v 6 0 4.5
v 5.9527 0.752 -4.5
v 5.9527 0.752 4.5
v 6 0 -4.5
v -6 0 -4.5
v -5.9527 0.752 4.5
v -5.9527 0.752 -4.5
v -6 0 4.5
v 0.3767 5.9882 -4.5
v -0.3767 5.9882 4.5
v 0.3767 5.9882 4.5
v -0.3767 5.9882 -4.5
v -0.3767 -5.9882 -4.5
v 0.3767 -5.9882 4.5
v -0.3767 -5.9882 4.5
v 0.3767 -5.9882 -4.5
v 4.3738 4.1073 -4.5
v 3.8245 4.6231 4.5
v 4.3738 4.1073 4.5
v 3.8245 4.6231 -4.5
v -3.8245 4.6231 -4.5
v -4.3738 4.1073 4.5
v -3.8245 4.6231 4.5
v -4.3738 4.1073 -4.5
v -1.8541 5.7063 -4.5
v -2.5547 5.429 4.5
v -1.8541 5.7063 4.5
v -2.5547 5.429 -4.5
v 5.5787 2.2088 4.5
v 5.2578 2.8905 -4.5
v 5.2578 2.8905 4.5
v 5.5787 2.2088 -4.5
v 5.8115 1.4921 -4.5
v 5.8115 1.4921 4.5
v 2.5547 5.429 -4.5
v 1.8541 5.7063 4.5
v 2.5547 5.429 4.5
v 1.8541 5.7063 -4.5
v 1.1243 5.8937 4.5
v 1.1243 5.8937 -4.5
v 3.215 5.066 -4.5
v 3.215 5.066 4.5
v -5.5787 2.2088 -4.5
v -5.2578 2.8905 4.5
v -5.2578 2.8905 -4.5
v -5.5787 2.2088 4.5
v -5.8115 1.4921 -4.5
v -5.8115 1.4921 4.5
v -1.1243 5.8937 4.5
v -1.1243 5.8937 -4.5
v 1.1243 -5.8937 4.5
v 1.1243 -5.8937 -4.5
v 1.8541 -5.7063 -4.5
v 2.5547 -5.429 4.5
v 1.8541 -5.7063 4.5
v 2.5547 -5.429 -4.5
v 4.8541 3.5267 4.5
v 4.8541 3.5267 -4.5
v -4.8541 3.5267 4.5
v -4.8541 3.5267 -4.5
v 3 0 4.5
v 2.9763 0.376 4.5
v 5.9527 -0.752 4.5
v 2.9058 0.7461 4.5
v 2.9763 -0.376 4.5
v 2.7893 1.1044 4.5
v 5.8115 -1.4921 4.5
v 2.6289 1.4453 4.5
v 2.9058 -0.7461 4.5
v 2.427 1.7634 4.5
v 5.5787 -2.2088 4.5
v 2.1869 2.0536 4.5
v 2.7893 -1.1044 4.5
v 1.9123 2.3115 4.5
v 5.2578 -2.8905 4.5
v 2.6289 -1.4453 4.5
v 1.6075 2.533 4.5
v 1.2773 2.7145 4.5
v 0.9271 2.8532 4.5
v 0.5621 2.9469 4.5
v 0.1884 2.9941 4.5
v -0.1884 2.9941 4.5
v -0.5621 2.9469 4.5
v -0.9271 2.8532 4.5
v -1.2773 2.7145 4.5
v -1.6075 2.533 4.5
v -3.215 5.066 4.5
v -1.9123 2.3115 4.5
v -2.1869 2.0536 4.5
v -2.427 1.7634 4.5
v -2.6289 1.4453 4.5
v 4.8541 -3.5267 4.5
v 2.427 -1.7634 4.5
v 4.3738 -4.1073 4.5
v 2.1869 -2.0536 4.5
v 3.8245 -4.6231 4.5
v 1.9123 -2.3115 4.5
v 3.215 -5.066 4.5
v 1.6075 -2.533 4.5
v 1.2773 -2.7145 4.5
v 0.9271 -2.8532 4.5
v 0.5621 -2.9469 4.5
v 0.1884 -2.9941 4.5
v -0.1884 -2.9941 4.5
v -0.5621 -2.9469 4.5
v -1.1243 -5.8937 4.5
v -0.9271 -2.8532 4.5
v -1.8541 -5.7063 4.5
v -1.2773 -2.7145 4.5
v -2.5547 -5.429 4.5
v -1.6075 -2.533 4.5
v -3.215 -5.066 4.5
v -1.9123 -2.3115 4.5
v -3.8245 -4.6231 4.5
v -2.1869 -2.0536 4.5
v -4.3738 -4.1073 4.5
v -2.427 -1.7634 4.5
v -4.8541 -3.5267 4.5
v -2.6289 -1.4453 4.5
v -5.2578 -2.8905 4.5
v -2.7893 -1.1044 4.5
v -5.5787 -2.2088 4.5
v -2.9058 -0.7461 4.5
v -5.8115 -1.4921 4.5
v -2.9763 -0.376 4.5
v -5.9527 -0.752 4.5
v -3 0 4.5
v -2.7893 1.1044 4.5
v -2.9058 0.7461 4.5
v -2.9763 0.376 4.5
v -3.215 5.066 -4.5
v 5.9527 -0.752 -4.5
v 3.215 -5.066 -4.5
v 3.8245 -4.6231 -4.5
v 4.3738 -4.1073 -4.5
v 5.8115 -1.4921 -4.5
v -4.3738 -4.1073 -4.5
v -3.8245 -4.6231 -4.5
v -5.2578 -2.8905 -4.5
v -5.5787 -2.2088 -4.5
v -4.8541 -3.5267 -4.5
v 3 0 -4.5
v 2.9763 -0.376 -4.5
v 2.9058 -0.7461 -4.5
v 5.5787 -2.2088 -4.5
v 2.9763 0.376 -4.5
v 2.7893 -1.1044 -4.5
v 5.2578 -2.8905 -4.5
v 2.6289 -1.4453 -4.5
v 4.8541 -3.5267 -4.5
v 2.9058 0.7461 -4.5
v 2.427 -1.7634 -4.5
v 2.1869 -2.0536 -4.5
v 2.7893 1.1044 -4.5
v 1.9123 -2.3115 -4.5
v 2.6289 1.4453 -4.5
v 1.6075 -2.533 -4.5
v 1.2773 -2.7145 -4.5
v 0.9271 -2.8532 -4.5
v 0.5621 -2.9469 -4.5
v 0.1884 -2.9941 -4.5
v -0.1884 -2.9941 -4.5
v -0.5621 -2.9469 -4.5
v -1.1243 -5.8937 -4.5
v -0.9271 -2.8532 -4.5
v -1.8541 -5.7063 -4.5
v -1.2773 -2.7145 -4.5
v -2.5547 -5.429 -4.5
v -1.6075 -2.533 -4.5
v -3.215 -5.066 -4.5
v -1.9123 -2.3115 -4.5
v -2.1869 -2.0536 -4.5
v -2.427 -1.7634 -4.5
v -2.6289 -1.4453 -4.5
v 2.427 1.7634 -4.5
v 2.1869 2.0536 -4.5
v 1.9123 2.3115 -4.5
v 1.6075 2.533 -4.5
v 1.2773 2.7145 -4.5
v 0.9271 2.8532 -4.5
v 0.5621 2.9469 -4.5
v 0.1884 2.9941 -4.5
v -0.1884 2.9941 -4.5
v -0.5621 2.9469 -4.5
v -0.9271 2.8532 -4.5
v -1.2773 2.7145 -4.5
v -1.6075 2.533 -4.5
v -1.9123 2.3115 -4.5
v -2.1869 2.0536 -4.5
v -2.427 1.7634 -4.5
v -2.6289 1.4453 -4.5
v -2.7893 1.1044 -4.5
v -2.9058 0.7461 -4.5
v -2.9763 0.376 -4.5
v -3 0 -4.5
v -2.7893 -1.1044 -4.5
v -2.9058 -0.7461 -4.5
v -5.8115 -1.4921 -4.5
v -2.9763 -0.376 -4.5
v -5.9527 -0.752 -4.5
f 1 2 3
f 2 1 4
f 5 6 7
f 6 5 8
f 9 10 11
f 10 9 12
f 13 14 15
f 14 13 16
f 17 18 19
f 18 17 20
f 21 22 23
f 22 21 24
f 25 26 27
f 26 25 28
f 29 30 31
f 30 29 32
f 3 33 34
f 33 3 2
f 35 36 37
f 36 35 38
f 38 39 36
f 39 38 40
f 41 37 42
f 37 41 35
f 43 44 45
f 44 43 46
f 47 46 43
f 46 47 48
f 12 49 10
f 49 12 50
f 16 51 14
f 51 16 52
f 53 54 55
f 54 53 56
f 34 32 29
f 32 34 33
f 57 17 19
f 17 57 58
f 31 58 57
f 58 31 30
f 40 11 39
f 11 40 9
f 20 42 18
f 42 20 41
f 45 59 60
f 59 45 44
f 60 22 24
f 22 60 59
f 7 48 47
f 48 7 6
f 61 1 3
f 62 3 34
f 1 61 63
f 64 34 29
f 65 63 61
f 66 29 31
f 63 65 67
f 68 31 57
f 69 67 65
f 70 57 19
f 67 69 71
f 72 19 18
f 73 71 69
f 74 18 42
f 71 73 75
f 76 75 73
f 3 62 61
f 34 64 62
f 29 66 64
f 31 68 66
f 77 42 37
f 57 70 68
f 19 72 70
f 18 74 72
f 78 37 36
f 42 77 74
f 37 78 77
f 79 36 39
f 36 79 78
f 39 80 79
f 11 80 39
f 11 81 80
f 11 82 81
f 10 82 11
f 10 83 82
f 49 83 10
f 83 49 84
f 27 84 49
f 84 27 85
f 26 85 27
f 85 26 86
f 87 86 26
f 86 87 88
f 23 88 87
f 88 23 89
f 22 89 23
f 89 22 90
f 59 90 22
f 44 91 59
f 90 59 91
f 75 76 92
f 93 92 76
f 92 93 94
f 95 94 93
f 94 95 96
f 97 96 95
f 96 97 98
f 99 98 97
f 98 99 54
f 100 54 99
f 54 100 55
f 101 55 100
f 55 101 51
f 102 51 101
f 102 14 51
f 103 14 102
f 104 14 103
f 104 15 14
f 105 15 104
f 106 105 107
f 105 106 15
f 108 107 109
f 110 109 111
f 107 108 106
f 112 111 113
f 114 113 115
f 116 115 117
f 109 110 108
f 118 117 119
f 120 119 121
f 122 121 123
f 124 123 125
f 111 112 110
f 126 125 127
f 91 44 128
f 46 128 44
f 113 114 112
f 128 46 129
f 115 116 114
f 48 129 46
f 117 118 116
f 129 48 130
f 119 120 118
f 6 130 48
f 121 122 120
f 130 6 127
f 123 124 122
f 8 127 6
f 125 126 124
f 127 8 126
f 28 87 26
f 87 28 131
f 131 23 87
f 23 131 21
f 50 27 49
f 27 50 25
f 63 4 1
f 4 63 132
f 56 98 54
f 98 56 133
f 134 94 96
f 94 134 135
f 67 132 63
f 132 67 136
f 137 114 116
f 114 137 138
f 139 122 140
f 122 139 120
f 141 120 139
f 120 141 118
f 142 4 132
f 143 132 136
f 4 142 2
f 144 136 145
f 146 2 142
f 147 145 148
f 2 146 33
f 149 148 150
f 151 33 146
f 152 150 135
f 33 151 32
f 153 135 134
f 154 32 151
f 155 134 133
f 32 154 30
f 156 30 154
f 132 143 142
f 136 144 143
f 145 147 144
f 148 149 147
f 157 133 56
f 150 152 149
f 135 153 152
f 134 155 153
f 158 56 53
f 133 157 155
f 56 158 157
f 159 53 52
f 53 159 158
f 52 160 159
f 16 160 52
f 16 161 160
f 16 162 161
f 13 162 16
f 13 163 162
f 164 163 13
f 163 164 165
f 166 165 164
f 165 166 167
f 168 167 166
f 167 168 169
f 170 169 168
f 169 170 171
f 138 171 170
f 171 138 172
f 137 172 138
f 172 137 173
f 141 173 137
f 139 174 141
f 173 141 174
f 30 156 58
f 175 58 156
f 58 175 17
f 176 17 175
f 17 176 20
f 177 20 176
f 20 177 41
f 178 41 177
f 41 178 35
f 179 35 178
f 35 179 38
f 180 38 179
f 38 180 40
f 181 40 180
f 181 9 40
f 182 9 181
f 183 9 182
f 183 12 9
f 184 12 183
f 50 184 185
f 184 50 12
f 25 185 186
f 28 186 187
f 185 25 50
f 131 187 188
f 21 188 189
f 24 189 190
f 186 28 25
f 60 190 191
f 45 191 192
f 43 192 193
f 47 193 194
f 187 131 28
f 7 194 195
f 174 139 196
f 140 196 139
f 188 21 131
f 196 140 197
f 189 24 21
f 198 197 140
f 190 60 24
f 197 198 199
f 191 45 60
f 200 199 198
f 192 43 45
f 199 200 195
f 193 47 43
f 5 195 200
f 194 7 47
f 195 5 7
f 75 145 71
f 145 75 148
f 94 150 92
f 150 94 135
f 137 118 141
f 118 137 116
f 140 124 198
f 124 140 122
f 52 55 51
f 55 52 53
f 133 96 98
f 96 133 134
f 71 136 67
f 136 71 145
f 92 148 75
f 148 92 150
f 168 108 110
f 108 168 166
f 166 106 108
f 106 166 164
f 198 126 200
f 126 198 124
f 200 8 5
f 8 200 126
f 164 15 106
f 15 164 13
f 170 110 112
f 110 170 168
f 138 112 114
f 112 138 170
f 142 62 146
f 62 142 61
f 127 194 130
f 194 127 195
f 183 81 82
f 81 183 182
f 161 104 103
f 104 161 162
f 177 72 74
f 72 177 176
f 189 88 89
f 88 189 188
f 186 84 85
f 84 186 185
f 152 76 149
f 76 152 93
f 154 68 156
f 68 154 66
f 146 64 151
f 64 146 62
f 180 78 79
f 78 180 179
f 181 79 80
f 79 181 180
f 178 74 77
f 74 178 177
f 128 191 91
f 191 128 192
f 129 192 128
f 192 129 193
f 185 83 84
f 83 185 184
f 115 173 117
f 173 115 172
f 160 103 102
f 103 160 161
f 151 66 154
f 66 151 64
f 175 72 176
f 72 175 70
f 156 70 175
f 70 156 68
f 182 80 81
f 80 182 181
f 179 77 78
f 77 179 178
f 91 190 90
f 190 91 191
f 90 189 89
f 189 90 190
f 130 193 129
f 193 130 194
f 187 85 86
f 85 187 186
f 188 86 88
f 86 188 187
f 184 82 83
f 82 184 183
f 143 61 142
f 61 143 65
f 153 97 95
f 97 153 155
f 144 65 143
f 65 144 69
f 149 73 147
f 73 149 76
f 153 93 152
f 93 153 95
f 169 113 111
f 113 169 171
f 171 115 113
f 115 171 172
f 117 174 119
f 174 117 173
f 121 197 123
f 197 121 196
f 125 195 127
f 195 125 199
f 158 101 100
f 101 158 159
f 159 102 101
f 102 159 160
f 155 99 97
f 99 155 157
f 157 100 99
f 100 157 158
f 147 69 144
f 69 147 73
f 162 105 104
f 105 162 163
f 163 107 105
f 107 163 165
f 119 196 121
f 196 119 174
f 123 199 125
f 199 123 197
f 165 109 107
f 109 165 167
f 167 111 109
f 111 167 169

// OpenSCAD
$fn = 50;


difference() {
	union() {
		translate(v = [0, 0, -4.5000000000]) {
			cylinder(h = 9, r = 6.0000000000);
		}
	}
	union() {
		translate(v = [0, 0, -100.0000000000]) {
			cylinder(h = 200, r = 3);
		}
	}
}
